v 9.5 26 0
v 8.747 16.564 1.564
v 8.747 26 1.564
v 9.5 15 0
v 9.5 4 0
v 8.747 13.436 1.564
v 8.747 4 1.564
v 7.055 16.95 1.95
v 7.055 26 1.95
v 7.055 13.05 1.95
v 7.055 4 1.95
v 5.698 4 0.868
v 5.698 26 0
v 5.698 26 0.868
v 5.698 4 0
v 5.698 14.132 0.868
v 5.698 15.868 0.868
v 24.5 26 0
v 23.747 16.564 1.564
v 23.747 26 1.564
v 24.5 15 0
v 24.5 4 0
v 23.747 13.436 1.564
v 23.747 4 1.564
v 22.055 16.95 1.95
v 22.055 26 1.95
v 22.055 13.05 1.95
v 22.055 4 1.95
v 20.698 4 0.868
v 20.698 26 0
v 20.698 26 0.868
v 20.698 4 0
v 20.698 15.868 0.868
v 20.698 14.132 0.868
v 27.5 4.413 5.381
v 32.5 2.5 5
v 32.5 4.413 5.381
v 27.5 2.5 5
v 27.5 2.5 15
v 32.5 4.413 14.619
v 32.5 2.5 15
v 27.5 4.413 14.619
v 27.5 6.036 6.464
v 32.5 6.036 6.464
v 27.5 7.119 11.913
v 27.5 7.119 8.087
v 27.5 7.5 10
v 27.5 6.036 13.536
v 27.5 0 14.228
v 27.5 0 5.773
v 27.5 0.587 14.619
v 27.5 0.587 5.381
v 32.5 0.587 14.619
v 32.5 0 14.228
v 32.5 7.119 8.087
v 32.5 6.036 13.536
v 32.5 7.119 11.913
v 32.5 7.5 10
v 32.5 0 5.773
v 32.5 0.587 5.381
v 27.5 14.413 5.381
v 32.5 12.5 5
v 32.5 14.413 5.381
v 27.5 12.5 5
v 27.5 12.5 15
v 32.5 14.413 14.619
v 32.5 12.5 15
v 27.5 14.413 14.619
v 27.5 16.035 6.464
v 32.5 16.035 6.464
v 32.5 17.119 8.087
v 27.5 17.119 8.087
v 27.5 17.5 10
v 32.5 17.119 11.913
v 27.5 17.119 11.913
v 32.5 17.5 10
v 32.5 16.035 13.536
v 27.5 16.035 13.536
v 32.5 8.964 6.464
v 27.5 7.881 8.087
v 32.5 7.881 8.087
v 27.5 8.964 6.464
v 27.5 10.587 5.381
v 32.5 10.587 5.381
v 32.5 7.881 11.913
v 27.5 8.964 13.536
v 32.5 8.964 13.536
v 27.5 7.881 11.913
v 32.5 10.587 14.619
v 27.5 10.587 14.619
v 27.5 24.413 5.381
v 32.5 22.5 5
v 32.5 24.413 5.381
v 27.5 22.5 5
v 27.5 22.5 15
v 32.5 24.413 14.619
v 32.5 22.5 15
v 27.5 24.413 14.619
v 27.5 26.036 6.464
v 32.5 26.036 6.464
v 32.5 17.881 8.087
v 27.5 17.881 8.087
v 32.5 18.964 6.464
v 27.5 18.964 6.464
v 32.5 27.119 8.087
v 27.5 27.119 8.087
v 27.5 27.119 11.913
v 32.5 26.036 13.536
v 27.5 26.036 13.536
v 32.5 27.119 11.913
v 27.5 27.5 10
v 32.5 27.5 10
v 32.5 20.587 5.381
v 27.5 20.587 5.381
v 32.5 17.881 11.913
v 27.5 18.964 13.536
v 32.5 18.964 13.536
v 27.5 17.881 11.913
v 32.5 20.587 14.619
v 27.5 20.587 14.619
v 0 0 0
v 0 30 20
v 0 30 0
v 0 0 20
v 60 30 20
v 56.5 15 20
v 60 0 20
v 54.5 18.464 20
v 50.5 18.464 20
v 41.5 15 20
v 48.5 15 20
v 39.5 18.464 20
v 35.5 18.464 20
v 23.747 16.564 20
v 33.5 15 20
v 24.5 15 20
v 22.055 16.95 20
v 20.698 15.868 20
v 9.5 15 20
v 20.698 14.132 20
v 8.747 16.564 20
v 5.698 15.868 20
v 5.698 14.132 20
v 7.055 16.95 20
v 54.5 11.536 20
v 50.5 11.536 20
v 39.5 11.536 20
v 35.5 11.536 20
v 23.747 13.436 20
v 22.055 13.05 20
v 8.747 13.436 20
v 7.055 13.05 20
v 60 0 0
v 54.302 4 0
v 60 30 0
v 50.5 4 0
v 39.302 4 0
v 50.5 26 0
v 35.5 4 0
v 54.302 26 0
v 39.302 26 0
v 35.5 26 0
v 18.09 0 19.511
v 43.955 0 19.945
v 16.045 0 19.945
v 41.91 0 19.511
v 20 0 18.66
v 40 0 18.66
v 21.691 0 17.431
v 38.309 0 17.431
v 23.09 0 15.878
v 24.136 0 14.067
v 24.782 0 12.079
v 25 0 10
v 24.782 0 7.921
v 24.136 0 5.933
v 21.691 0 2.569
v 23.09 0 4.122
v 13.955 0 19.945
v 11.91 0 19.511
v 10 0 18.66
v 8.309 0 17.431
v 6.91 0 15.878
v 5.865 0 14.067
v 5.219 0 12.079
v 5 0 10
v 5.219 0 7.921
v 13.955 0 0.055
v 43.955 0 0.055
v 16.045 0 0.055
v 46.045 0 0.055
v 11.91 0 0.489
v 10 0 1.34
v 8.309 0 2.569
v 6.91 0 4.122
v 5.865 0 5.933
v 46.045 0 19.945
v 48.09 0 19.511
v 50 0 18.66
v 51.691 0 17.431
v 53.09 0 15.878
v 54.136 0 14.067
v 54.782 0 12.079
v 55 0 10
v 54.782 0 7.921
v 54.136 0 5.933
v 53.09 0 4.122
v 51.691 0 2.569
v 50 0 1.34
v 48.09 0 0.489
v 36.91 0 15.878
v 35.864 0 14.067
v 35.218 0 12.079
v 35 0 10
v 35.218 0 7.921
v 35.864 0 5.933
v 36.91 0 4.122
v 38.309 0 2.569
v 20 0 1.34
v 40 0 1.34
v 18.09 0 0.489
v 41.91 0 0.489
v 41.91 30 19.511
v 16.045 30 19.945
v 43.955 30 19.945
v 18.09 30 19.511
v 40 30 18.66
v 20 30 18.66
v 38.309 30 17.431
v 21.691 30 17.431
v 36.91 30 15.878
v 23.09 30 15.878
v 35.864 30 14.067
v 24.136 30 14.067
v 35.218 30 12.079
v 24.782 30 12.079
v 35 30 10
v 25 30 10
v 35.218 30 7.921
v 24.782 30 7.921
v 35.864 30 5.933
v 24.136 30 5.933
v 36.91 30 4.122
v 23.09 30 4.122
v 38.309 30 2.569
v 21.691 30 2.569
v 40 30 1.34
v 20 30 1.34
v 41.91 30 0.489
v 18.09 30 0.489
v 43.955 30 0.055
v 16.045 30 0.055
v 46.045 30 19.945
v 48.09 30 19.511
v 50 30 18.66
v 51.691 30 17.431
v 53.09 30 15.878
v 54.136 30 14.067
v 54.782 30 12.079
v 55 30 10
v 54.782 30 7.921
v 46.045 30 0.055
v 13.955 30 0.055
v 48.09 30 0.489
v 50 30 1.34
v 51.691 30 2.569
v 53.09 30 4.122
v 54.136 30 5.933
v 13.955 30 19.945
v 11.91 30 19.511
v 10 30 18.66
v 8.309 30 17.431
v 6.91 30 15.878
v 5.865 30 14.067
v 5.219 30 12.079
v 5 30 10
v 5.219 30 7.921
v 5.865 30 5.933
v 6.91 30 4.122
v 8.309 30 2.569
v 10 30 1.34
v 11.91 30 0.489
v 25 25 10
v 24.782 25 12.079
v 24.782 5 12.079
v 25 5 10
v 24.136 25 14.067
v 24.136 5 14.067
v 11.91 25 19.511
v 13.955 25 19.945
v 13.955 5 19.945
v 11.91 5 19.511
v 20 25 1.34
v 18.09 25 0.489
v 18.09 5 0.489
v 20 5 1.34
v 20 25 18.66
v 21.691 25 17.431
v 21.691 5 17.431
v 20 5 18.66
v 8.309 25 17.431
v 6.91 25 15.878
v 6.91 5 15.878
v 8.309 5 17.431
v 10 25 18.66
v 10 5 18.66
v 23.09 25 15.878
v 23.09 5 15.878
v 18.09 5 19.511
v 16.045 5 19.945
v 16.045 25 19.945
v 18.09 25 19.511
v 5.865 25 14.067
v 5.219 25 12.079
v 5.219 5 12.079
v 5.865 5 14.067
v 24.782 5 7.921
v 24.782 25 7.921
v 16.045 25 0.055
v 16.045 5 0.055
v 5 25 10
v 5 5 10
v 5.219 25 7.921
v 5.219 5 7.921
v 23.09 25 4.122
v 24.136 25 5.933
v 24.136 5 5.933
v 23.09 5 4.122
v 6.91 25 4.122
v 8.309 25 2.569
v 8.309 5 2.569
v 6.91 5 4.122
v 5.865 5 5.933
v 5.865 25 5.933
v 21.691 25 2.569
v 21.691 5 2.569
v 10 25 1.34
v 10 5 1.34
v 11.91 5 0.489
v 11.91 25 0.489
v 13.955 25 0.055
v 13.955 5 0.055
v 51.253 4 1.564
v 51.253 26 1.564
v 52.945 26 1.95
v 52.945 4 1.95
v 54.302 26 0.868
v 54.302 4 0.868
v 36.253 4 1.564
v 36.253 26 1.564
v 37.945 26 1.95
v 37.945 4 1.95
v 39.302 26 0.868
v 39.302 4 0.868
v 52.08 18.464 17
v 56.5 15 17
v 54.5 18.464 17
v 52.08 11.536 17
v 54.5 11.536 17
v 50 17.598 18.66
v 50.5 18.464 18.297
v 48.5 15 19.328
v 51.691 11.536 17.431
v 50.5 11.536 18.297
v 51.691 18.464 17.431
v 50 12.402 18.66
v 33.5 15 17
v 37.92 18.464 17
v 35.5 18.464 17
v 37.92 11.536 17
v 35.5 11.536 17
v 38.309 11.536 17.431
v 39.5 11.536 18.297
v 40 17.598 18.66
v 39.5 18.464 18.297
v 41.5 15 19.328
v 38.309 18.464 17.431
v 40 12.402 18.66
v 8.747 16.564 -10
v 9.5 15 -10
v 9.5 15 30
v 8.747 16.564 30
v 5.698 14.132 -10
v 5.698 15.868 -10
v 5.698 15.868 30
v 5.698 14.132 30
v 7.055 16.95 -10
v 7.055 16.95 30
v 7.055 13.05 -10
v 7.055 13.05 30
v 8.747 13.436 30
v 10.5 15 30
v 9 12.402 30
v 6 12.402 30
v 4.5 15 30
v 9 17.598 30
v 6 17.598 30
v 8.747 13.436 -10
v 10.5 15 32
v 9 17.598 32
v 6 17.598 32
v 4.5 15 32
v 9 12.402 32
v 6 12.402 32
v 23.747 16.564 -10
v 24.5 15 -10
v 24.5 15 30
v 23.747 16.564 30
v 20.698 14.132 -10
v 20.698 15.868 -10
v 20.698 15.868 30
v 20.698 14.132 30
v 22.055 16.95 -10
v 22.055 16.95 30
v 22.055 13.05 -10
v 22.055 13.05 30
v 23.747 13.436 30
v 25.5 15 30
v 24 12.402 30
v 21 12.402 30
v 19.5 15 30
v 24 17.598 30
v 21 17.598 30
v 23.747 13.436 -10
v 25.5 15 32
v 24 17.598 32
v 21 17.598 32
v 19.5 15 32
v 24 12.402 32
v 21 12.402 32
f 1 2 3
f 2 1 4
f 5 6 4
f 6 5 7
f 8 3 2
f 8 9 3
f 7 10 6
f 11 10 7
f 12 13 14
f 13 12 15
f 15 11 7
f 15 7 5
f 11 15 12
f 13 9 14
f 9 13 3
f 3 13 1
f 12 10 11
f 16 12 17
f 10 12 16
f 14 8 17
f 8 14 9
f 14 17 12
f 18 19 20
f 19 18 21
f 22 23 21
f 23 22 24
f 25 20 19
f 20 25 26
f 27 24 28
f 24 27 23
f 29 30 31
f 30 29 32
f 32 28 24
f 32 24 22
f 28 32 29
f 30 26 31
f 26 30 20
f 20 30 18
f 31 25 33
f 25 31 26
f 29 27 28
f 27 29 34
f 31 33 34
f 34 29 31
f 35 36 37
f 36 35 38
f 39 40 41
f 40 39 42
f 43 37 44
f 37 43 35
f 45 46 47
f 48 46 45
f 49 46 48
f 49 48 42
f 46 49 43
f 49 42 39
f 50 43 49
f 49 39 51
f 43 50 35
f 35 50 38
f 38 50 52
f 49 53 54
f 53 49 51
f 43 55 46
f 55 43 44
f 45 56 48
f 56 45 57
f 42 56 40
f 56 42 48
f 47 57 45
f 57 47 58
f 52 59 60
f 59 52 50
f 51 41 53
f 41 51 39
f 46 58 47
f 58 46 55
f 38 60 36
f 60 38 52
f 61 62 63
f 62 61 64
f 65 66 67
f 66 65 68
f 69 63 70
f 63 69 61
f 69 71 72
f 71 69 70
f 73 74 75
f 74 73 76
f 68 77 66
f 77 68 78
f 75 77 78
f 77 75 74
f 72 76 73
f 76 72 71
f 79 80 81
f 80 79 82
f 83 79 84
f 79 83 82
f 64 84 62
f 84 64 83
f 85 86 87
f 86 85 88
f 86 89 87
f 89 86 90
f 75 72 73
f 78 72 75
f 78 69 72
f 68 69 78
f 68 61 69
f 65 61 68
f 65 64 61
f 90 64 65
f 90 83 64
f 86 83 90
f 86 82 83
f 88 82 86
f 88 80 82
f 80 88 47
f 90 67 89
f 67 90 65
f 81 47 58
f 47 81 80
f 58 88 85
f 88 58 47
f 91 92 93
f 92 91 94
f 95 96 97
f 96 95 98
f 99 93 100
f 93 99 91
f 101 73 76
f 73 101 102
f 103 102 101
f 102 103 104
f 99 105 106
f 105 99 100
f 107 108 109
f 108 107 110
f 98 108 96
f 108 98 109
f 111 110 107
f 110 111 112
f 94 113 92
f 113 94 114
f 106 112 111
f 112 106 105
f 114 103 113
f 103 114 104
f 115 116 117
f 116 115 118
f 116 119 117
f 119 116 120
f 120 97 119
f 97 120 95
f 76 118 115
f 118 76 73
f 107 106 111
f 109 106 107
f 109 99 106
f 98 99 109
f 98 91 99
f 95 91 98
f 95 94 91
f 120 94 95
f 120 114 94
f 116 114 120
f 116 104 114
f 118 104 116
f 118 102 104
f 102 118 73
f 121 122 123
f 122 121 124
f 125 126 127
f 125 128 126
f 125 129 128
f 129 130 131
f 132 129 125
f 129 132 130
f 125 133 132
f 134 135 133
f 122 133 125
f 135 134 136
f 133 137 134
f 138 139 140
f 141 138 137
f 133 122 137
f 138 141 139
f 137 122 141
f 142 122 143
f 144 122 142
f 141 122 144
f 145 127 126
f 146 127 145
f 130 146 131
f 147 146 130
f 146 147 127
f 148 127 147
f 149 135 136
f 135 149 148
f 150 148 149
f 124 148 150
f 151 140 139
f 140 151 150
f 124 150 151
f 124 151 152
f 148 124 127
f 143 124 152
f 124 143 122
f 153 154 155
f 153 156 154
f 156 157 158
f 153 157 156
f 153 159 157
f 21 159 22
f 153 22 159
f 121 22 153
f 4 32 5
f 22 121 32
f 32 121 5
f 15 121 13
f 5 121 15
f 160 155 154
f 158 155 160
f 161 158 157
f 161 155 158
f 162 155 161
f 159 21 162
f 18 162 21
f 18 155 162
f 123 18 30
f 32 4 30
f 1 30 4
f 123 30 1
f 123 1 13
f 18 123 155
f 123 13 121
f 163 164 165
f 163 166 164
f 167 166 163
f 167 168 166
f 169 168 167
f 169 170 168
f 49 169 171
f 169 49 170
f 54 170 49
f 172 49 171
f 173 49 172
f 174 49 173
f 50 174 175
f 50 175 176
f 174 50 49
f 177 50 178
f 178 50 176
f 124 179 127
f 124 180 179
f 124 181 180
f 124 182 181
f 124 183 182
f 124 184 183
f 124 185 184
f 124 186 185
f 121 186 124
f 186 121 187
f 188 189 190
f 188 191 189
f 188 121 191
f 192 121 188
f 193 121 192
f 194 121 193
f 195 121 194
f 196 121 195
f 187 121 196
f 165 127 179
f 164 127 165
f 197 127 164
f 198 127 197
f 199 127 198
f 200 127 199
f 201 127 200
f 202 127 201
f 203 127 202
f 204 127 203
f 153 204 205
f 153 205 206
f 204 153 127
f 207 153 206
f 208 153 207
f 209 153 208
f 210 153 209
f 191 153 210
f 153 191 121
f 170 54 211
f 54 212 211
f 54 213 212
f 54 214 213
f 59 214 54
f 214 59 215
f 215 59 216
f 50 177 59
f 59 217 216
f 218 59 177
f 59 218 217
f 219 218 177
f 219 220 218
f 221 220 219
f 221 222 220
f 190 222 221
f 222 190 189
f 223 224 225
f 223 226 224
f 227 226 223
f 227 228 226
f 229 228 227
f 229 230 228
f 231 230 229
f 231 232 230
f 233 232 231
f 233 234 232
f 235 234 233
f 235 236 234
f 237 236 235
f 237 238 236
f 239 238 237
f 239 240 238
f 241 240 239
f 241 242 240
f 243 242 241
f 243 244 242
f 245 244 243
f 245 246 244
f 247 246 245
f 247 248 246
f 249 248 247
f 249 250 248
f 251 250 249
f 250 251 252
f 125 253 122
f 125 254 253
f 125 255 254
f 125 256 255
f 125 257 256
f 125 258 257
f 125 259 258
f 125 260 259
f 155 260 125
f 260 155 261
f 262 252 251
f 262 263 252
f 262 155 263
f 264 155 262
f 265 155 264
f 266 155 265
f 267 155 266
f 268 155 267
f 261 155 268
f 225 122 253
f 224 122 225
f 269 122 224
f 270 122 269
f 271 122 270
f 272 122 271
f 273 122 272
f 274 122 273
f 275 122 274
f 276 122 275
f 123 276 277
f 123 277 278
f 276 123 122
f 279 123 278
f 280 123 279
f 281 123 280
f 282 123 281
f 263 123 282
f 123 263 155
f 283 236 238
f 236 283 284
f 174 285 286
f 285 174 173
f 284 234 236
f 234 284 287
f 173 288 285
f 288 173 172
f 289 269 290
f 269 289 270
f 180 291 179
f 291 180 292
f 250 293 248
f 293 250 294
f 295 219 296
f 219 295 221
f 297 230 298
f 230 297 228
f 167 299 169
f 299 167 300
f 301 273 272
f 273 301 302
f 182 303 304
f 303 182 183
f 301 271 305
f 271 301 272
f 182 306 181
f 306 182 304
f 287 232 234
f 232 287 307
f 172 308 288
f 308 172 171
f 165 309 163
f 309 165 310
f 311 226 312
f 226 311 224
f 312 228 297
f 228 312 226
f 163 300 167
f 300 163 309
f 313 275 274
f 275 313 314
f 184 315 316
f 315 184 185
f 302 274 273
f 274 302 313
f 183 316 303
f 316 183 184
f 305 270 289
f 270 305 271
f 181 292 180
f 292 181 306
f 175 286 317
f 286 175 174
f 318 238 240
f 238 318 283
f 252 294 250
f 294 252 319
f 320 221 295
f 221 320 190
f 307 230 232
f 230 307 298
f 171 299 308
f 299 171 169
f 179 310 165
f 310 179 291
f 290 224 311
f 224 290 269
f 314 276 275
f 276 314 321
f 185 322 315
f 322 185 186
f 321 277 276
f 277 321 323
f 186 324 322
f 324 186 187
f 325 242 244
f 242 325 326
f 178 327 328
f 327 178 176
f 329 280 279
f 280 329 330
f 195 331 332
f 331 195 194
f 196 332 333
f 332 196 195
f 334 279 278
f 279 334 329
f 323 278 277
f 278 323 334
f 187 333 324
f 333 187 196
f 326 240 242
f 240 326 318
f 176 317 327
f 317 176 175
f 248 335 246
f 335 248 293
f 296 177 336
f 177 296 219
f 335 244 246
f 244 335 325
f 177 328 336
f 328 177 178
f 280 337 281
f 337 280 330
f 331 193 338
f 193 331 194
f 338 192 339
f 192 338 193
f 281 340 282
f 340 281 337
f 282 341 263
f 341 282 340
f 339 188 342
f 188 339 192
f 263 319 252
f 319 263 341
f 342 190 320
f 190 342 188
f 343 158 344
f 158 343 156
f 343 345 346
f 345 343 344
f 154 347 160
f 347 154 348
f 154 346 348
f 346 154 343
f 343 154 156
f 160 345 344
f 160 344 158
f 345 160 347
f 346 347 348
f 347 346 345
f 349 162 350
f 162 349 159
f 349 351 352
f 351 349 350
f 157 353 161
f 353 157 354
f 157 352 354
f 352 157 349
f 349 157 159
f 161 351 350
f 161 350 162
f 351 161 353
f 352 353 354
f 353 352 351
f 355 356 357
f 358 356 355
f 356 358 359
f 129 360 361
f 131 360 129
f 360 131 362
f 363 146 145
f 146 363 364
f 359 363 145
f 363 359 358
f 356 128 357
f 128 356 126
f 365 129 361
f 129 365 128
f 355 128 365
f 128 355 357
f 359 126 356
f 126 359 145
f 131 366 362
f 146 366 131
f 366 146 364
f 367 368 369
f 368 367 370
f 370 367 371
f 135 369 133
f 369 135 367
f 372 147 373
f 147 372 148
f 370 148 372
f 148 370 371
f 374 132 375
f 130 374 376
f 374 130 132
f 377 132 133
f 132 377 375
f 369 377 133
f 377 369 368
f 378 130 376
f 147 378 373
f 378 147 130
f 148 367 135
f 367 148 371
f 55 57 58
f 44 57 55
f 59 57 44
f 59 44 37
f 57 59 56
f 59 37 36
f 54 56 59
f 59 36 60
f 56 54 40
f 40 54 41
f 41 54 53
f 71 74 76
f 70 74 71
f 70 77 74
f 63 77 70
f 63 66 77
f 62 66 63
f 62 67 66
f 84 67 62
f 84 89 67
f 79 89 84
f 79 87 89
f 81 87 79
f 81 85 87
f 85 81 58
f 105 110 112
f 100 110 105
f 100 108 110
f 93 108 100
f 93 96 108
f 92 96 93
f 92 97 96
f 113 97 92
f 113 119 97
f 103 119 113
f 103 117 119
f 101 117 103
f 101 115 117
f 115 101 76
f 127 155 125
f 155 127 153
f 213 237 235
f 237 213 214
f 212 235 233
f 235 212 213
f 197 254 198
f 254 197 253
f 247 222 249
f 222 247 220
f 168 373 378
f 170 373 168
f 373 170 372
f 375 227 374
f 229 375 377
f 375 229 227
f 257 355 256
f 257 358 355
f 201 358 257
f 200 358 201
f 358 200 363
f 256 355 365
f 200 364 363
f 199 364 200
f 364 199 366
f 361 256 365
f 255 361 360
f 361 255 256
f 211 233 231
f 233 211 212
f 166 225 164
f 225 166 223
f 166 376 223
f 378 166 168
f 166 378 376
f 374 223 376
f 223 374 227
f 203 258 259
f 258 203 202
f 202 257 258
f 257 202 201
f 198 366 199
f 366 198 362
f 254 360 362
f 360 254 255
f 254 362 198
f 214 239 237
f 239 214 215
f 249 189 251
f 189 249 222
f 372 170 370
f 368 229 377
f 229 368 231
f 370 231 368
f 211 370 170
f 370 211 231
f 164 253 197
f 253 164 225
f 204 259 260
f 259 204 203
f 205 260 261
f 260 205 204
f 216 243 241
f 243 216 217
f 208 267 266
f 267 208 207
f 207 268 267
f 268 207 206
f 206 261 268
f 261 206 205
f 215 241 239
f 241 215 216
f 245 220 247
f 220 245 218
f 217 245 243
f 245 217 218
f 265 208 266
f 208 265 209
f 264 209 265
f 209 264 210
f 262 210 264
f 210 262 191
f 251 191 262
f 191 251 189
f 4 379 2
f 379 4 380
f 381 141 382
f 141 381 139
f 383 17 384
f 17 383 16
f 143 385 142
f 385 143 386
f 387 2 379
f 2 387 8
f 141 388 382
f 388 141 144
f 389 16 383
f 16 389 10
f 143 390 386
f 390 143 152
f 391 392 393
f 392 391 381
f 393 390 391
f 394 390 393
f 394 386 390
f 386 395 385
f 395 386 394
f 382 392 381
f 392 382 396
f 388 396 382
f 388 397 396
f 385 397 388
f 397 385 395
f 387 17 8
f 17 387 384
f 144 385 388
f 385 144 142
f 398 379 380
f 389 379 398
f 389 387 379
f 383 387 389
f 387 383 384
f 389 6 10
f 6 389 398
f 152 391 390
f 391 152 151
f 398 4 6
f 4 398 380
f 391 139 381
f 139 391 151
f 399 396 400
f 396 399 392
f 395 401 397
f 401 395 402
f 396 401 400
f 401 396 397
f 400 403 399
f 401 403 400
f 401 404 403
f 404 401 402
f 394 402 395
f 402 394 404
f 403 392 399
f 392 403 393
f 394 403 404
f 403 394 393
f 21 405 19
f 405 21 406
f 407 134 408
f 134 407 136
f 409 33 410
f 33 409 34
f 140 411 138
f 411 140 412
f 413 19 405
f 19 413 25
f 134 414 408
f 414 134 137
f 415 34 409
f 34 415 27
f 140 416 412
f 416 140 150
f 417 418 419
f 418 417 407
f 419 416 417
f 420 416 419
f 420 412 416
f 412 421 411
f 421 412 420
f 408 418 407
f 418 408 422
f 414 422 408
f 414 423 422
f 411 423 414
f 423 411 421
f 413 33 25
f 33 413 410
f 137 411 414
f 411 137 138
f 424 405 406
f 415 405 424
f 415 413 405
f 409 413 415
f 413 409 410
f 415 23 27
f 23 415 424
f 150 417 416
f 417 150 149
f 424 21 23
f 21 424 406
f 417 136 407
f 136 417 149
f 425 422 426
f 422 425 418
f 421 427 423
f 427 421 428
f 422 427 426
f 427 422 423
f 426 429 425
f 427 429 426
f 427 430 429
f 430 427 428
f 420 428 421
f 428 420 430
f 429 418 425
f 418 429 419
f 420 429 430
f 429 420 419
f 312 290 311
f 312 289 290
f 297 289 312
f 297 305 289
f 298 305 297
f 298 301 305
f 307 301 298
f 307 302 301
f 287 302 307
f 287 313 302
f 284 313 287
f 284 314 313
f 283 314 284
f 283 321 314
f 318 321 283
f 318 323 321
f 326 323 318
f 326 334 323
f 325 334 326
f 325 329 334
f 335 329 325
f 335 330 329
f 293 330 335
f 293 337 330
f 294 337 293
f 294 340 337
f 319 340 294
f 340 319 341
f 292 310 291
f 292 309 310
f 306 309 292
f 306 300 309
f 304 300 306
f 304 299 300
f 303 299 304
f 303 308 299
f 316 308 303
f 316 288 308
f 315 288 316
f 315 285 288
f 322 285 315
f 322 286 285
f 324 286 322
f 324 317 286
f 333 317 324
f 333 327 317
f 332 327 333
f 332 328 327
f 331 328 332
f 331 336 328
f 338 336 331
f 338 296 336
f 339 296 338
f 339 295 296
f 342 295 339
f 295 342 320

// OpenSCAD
// Parameters
jaw_length = 30;
jaw_width = 30;
jaw_height = 20;
tooth_radius = 5;
tooth_depth = 5;
core_radius = 10;
core_length = 20;
bolt_radius = 2;
bolt_length = 40;
nut_radius = 4;
nut_height = 3;

// Modules
module jaw_block(mirror=false) {
    translate([mirror ? jaw_length : 0, 0, 0])
    mirror([mirror ? 1 : 0, 0, 0])
    difference() {
        cube([jaw_length, jaw_width, jaw_height]);
        
        // Central bore
        translate([jaw_length/2, jaw_width/2, jaw_height/2])
            rotate([90,0,0])
                cylinder(h=jaw_width+2, r=core_radius, center=true);
        
        // Bolt holes
        for (x = [jaw_length*0.25, jaw_length*0.75])
            translate([x, jaw_width/2, 0])
                rotate([90,0,0])
                    cylinder(h=jaw_height+2, r=bolt_radius, center=true);
        
        // Nut recesses
        for (x = [jaw_length*0.25, jaw_length*0.75])
            translate([x, jaw_width/2, jaw_height - nut_height])
                cylinder(h=nut_height+0.1, r=nut_radius, $fn=6);
        
        // Interlocking teeth
        for (i = [0:2]) {
            translate([jaw_length, i*10 + 2.5, jaw_height/2])
                rotate([0,90,0])
                    cylinder(h=tooth_depth, r=tooth_radius, center=true);
        }
    }
}

module central_core() {
    translate([jaw_length/2, jaw_width/2, jaw_height/2])
        rotate([90,0,0])
            cylinder(h=core_length, r=core_radius, center=true);
}

module bolt() {
    union() {
        // Shaft
        cylinder(h=bolt_length, r=bolt_radius);
        // Head
        translate([0,0,bolt_length])
            cylinder(h=2, r=bolt_radius*1.5, $fn=6);
    }
}

module nut() {
    cylinder(h=nut_height, r=nut_radius, $fn=6);
}

// Assembly
module assembly() {
    // Left jaw
    jaw_block(false);
    
    // Right jaw
    translate([jaw_length, 0, 0])
        jaw_block(true);
    
    // Core
    central_core();
    
    // Bolts
    for (x = [jaw_length*0.25, jaw_length*0.75])
        translate([x, jaw_width/2, -10])
            bolt();
    
    // Nuts
    for (x = [jaw_length*0.25, jaw_length*0.75])
        translate([x, jaw_width/2, jaw_height - nut_height])
            nut();
}

// Render the full model
assembly();
